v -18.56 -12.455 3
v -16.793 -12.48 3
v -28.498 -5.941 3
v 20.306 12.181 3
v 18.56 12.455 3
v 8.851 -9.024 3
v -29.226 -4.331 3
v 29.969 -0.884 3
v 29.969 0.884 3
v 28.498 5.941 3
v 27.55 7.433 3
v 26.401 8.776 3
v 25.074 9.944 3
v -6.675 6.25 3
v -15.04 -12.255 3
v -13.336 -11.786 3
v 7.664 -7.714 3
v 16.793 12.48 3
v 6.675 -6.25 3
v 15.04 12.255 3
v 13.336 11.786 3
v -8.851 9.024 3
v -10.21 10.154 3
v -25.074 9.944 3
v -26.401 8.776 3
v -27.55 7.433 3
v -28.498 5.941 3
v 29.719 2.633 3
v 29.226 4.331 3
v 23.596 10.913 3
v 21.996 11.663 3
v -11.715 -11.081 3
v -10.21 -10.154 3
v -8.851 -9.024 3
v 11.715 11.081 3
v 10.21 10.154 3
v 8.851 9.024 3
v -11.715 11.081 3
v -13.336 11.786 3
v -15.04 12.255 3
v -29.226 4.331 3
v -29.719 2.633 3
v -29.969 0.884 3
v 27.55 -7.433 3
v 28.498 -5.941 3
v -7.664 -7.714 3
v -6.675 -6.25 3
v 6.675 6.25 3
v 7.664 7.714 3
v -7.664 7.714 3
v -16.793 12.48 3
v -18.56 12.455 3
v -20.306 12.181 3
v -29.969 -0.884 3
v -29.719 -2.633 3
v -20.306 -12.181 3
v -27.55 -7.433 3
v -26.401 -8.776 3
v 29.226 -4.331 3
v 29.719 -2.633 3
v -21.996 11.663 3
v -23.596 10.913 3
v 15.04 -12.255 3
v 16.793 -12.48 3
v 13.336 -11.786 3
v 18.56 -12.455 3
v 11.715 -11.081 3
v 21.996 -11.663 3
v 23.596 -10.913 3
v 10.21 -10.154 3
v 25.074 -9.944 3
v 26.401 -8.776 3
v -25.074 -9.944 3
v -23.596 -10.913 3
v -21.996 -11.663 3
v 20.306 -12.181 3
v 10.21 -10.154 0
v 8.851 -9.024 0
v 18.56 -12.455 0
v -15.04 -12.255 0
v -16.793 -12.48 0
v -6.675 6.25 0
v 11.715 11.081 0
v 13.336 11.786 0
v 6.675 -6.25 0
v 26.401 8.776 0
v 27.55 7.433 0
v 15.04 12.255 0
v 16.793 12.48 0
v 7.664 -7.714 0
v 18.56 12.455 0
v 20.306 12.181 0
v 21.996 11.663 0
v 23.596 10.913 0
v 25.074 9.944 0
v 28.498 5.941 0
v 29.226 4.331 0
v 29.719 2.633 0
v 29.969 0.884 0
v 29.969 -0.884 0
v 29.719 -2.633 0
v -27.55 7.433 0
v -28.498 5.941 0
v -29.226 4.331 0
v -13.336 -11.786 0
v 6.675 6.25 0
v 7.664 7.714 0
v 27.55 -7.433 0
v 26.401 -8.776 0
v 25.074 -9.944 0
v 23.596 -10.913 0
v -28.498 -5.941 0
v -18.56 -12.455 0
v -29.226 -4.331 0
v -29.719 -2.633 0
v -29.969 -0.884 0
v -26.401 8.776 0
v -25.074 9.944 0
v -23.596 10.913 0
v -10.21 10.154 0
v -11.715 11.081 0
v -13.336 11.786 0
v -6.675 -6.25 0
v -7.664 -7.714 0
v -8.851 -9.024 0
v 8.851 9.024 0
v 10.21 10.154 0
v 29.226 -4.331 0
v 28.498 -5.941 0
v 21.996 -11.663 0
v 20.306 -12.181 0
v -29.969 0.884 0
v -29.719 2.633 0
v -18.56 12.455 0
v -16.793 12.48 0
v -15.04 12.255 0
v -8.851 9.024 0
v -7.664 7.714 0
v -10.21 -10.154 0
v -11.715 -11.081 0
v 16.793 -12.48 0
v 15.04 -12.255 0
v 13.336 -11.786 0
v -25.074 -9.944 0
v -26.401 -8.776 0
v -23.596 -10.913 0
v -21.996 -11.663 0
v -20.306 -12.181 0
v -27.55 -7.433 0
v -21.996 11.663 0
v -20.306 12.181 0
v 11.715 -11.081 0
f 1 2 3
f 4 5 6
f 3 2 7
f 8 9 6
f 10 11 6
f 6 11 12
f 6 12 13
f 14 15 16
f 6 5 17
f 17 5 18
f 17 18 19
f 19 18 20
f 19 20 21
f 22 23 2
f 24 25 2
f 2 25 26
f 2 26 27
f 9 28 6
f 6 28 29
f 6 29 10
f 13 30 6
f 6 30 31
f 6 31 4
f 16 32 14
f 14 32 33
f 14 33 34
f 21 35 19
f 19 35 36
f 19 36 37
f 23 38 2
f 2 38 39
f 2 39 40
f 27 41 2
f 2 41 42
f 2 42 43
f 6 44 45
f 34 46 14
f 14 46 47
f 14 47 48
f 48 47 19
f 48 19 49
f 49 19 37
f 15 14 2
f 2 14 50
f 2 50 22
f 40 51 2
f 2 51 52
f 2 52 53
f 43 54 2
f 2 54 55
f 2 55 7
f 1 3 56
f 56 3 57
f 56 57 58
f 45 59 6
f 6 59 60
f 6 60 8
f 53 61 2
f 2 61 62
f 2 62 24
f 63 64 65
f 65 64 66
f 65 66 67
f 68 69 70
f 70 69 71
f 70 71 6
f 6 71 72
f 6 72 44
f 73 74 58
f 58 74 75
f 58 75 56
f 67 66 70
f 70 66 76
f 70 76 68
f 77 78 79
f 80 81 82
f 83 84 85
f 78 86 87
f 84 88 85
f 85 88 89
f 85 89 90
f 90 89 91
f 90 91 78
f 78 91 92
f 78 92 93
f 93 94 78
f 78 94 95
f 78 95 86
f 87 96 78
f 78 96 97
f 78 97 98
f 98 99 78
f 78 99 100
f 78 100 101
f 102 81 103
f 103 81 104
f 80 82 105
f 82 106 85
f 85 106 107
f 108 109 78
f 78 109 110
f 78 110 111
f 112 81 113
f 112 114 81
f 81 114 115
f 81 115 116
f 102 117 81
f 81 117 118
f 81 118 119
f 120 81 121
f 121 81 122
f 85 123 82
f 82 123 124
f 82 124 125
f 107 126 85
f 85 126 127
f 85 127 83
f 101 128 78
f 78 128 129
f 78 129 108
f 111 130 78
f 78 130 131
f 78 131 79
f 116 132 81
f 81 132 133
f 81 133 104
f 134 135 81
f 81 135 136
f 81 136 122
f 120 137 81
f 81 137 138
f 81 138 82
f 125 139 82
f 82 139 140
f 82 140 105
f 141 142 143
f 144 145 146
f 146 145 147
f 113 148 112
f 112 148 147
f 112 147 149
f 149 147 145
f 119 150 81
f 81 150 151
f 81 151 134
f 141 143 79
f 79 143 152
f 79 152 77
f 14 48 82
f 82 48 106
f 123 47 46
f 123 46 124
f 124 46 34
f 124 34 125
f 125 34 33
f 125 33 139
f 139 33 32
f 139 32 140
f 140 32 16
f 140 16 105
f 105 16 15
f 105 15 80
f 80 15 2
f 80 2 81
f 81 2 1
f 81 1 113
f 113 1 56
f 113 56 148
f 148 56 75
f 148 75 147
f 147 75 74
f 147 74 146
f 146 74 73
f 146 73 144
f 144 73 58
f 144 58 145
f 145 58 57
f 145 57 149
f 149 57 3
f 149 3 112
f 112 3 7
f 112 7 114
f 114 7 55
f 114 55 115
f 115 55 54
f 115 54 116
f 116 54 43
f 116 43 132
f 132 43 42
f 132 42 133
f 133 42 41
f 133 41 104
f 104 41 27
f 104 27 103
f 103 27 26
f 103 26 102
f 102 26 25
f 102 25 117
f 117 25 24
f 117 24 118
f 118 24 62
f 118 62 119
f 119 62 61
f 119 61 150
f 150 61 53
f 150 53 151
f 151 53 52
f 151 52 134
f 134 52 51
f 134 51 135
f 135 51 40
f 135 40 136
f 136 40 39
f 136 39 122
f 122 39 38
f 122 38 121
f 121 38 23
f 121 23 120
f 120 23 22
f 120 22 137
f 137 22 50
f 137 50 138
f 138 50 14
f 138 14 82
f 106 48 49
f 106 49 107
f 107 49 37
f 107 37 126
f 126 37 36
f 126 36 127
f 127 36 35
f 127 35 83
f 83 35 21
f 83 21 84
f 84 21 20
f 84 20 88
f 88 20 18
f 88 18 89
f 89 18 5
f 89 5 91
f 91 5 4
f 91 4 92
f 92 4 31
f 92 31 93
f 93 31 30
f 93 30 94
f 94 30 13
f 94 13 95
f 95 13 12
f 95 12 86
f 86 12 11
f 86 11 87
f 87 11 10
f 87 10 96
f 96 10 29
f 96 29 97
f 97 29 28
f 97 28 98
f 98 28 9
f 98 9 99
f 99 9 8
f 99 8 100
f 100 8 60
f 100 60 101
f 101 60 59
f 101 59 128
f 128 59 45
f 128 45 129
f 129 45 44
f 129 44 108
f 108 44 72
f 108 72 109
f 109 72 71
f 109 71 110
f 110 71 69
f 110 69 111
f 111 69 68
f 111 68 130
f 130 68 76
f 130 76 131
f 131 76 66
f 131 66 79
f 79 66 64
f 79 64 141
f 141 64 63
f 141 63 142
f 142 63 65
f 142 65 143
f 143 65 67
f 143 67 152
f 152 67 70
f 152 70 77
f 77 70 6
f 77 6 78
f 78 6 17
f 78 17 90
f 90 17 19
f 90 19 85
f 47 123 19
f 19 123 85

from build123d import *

# Parameters (mm, degrees)
ESQUISSE1_W             = 60
ESQUISSE1_H             = 25
BOSS_EXTRU_2_DEPTH      = 3
ENL_V_MAT_EXTRU_1_DEPTH = 10


with BuildPart() as part:
    # Esquisse1 → Boss.-Extru.2 (new body)
    with BuildSketch(Plane.XY):
        Rectangle(ESQUISSE1_W, ESQUISSE1_H)
    extrude(amount=BOSS_EXTRU_2_DEPTH)

    # Esquisse2 → Enlèv. mat.-Extru.1 (cut)
    with BuildSketch(Plane.XY.offset(3)):
        with BuildLine():
            Line((-6.674682453, 6.25), (0, 6.25))
            Line((0, 6.25), (6.674682453, 6.25))
            ThreePointArc((6.674682453, 6.25), (11.249999964, 10.825317527), (17.499999917, 12.5))
            Line((17.499999917, 12.5), (-17.500000011, 12.5))
            ThreePointArc((-17.500000011, 12.5), (-11.250000005, 10.82531755), (-6.674682453, 6.25))
        make_face()
        with BuildLine():
            ThreePointArc((-30, 3e-08), (-26.338834758, 8.838834771), (-17.500000011, 12.5))
            Line((-17.500000011, 12.5), (-30, 12.5))
            Line((-30, 12.5), (-30, 3e-08))
        make_face()
        with BuildLine():
            Line((-30, -12.5), (-17.50000003, -12.5))
            ThreePointArc((-17.50000003, -12.5), (-26.338834786, -8.838834744), (-30, 3e-08))
            Line((-30, 3e-08), (-30, -12.5))
        make_face()
        with BuildLine():
            Line((6.674682453, -6.25), (0, -6.25))
            Line((0, -6.25), (-6.674682453, -6.25))
            ThreePointArc((-6.674682453, -6.25), (-11.250000013, -10.825317555), (-17.50000003, -12.5))
            Line((-17.50000003, -12.5), (17.500000079, -12.5))
            ThreePointArc((17.500000079, -12.5), (11.250000034, -10.825317567), (6.674682453, -6.25))
        make_face()
        with BuildLine():
            ThreePointArc((30, -1.2e-08), (26.338834789, -8.838834741), (17.500000079, -12.5))
            Line((17.500000079, -12.5), (30, -12.5))
            Line((30, -12.5), (30, -1.2e-08))
        make_face()
        with BuildLine():
            Line((30, 12.5), (17.499999917, 12.5))
            ThreePointArc((17.499999917, 12.5), (26.33883474, 8.83883479), (30, -1.2e-08))
            Line((30, -1.2e-08), (30, 12.5))
        make_face()
    extrude(amount=-ENL_V_MAT_EXTRU_1_DEPTH, mode=Mode.SUBTRACT)


solid = part.part
